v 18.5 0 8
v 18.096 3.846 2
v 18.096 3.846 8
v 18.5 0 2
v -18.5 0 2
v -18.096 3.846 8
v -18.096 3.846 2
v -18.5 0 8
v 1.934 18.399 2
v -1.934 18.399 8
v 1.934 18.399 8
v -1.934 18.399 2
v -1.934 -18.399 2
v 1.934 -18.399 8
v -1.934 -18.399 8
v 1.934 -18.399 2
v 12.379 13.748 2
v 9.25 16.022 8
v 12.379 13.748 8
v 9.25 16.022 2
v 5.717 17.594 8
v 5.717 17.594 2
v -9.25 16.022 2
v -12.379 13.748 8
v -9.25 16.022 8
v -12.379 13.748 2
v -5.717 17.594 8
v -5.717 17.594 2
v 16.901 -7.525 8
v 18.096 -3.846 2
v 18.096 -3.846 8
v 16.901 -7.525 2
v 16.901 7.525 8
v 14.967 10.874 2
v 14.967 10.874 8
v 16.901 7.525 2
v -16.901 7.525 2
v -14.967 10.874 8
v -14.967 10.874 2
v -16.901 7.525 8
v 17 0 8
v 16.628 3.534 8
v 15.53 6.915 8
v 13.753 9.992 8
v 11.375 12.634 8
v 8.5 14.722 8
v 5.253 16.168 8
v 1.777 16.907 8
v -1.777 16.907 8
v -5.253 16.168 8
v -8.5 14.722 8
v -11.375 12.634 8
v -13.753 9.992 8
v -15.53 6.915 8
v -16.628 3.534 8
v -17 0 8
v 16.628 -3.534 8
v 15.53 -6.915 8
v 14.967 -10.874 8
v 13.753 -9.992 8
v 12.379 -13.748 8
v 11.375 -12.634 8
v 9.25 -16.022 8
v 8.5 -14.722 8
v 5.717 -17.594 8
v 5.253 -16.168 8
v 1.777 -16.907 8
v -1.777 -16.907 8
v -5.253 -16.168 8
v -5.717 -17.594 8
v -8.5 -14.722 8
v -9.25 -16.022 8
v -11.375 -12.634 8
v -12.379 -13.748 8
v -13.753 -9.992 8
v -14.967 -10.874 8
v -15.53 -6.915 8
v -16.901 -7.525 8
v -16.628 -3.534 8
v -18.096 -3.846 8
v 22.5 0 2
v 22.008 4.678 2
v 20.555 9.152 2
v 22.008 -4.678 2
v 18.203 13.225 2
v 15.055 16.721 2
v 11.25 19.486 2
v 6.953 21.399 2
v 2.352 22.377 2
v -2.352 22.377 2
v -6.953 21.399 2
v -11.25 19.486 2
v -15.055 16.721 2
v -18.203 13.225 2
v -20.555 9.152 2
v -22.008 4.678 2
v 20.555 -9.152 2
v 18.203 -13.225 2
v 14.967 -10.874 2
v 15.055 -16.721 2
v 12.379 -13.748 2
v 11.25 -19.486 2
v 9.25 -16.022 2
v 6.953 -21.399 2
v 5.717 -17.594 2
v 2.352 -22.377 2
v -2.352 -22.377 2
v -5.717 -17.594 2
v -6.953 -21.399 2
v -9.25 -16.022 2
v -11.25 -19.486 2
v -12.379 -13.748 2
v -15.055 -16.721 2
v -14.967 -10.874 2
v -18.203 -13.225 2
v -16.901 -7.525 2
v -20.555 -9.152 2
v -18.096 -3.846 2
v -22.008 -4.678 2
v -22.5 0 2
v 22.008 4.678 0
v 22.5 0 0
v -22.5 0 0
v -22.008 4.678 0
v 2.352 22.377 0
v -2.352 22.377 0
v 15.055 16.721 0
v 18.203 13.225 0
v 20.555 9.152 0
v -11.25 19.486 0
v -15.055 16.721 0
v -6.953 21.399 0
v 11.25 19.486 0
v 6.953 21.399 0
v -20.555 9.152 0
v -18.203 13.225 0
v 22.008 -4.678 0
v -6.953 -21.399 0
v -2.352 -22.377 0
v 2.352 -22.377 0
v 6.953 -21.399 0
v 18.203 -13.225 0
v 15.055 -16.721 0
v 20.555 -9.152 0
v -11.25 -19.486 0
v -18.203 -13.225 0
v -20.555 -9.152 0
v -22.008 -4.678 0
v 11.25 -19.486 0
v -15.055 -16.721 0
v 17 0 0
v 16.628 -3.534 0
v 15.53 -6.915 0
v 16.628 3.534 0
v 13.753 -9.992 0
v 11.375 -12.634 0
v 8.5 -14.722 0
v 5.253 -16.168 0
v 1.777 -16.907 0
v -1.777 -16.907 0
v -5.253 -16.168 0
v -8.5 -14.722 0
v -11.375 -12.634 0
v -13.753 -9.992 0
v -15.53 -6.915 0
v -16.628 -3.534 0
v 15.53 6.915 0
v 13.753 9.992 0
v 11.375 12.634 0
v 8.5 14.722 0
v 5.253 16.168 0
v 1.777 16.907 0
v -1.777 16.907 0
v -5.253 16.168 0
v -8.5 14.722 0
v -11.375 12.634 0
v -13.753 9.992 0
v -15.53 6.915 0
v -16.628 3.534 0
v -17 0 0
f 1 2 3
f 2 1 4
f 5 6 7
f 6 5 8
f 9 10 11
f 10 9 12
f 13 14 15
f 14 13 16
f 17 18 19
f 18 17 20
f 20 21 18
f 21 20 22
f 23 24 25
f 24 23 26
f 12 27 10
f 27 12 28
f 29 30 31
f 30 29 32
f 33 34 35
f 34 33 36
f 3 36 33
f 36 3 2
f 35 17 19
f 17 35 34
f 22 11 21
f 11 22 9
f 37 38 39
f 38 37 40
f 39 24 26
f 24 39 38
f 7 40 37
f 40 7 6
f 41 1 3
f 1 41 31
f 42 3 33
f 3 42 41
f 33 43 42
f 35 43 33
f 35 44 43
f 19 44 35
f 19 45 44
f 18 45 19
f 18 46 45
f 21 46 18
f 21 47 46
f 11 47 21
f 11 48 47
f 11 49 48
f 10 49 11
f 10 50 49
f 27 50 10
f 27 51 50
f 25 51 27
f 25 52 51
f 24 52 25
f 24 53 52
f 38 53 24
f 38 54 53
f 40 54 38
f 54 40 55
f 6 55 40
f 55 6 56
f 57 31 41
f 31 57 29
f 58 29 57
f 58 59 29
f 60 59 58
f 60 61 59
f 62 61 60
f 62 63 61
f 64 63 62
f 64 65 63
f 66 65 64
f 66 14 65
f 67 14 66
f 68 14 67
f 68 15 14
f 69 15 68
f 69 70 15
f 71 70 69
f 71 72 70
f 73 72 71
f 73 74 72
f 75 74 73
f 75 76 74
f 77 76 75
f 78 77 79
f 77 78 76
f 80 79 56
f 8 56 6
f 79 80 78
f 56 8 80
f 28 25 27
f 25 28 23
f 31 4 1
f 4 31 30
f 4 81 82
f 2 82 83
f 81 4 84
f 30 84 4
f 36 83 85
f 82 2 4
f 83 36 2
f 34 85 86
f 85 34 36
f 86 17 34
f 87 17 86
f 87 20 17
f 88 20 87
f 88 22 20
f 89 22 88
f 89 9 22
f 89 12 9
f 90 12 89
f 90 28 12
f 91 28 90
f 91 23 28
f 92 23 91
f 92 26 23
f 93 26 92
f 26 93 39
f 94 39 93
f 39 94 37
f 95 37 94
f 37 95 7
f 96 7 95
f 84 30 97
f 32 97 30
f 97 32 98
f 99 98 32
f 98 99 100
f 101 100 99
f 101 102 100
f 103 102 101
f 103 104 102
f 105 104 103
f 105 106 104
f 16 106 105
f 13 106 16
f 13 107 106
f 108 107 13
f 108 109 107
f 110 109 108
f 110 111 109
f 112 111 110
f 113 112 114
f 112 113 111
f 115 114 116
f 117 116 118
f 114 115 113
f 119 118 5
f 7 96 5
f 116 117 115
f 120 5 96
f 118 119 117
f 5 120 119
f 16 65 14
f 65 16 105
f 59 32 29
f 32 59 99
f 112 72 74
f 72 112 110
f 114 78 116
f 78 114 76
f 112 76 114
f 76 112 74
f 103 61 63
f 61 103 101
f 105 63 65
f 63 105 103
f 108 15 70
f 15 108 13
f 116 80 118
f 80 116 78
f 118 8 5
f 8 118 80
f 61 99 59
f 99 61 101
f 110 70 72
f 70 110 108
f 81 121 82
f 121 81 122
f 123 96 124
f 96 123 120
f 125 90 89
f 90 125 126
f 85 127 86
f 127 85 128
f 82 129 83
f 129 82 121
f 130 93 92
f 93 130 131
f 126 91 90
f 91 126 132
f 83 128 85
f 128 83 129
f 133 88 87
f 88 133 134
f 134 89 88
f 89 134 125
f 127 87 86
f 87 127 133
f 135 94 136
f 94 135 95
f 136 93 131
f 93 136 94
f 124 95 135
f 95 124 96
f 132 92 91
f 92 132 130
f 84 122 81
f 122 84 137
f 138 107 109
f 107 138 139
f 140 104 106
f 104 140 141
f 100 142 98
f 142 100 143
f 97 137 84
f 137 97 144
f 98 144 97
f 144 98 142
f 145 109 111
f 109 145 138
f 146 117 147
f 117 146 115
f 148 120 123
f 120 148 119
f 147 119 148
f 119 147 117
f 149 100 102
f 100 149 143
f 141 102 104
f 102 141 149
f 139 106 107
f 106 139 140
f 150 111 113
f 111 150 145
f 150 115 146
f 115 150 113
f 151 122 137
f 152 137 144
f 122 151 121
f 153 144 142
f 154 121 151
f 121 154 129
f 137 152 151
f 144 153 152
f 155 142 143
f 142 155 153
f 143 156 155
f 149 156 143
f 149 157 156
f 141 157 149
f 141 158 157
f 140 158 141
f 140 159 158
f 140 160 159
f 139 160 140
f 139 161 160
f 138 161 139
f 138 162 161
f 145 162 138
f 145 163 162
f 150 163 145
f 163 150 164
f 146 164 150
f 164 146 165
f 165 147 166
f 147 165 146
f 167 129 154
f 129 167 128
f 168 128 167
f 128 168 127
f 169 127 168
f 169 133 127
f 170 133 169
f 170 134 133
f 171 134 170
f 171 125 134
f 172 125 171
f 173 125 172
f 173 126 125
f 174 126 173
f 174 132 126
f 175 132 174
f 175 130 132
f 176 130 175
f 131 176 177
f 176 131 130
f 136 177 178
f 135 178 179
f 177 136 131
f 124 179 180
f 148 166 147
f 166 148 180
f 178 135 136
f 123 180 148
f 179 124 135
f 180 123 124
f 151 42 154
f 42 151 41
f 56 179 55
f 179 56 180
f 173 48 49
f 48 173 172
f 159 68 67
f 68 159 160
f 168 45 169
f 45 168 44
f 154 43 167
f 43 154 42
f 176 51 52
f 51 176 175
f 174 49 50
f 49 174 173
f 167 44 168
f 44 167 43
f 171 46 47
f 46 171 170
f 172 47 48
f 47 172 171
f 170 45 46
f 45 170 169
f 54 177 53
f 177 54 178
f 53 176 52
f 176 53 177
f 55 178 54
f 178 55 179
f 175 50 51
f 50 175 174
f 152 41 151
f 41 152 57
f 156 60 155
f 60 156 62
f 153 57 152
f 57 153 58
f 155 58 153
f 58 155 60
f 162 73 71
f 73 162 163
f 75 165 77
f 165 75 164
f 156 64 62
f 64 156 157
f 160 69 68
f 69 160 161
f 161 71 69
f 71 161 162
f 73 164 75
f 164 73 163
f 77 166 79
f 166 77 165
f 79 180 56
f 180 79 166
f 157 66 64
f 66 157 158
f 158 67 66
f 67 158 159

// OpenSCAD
difference(){
    union(){
        translate([0,0,2]) cylinder(h=6, d=37, center=false);
        translate([0,0,0]) cylinder(h=2, d=45, center=false);
    }
    translate([0,0,-0.1]) cylinder(h=37, d=34, center=false);
}
